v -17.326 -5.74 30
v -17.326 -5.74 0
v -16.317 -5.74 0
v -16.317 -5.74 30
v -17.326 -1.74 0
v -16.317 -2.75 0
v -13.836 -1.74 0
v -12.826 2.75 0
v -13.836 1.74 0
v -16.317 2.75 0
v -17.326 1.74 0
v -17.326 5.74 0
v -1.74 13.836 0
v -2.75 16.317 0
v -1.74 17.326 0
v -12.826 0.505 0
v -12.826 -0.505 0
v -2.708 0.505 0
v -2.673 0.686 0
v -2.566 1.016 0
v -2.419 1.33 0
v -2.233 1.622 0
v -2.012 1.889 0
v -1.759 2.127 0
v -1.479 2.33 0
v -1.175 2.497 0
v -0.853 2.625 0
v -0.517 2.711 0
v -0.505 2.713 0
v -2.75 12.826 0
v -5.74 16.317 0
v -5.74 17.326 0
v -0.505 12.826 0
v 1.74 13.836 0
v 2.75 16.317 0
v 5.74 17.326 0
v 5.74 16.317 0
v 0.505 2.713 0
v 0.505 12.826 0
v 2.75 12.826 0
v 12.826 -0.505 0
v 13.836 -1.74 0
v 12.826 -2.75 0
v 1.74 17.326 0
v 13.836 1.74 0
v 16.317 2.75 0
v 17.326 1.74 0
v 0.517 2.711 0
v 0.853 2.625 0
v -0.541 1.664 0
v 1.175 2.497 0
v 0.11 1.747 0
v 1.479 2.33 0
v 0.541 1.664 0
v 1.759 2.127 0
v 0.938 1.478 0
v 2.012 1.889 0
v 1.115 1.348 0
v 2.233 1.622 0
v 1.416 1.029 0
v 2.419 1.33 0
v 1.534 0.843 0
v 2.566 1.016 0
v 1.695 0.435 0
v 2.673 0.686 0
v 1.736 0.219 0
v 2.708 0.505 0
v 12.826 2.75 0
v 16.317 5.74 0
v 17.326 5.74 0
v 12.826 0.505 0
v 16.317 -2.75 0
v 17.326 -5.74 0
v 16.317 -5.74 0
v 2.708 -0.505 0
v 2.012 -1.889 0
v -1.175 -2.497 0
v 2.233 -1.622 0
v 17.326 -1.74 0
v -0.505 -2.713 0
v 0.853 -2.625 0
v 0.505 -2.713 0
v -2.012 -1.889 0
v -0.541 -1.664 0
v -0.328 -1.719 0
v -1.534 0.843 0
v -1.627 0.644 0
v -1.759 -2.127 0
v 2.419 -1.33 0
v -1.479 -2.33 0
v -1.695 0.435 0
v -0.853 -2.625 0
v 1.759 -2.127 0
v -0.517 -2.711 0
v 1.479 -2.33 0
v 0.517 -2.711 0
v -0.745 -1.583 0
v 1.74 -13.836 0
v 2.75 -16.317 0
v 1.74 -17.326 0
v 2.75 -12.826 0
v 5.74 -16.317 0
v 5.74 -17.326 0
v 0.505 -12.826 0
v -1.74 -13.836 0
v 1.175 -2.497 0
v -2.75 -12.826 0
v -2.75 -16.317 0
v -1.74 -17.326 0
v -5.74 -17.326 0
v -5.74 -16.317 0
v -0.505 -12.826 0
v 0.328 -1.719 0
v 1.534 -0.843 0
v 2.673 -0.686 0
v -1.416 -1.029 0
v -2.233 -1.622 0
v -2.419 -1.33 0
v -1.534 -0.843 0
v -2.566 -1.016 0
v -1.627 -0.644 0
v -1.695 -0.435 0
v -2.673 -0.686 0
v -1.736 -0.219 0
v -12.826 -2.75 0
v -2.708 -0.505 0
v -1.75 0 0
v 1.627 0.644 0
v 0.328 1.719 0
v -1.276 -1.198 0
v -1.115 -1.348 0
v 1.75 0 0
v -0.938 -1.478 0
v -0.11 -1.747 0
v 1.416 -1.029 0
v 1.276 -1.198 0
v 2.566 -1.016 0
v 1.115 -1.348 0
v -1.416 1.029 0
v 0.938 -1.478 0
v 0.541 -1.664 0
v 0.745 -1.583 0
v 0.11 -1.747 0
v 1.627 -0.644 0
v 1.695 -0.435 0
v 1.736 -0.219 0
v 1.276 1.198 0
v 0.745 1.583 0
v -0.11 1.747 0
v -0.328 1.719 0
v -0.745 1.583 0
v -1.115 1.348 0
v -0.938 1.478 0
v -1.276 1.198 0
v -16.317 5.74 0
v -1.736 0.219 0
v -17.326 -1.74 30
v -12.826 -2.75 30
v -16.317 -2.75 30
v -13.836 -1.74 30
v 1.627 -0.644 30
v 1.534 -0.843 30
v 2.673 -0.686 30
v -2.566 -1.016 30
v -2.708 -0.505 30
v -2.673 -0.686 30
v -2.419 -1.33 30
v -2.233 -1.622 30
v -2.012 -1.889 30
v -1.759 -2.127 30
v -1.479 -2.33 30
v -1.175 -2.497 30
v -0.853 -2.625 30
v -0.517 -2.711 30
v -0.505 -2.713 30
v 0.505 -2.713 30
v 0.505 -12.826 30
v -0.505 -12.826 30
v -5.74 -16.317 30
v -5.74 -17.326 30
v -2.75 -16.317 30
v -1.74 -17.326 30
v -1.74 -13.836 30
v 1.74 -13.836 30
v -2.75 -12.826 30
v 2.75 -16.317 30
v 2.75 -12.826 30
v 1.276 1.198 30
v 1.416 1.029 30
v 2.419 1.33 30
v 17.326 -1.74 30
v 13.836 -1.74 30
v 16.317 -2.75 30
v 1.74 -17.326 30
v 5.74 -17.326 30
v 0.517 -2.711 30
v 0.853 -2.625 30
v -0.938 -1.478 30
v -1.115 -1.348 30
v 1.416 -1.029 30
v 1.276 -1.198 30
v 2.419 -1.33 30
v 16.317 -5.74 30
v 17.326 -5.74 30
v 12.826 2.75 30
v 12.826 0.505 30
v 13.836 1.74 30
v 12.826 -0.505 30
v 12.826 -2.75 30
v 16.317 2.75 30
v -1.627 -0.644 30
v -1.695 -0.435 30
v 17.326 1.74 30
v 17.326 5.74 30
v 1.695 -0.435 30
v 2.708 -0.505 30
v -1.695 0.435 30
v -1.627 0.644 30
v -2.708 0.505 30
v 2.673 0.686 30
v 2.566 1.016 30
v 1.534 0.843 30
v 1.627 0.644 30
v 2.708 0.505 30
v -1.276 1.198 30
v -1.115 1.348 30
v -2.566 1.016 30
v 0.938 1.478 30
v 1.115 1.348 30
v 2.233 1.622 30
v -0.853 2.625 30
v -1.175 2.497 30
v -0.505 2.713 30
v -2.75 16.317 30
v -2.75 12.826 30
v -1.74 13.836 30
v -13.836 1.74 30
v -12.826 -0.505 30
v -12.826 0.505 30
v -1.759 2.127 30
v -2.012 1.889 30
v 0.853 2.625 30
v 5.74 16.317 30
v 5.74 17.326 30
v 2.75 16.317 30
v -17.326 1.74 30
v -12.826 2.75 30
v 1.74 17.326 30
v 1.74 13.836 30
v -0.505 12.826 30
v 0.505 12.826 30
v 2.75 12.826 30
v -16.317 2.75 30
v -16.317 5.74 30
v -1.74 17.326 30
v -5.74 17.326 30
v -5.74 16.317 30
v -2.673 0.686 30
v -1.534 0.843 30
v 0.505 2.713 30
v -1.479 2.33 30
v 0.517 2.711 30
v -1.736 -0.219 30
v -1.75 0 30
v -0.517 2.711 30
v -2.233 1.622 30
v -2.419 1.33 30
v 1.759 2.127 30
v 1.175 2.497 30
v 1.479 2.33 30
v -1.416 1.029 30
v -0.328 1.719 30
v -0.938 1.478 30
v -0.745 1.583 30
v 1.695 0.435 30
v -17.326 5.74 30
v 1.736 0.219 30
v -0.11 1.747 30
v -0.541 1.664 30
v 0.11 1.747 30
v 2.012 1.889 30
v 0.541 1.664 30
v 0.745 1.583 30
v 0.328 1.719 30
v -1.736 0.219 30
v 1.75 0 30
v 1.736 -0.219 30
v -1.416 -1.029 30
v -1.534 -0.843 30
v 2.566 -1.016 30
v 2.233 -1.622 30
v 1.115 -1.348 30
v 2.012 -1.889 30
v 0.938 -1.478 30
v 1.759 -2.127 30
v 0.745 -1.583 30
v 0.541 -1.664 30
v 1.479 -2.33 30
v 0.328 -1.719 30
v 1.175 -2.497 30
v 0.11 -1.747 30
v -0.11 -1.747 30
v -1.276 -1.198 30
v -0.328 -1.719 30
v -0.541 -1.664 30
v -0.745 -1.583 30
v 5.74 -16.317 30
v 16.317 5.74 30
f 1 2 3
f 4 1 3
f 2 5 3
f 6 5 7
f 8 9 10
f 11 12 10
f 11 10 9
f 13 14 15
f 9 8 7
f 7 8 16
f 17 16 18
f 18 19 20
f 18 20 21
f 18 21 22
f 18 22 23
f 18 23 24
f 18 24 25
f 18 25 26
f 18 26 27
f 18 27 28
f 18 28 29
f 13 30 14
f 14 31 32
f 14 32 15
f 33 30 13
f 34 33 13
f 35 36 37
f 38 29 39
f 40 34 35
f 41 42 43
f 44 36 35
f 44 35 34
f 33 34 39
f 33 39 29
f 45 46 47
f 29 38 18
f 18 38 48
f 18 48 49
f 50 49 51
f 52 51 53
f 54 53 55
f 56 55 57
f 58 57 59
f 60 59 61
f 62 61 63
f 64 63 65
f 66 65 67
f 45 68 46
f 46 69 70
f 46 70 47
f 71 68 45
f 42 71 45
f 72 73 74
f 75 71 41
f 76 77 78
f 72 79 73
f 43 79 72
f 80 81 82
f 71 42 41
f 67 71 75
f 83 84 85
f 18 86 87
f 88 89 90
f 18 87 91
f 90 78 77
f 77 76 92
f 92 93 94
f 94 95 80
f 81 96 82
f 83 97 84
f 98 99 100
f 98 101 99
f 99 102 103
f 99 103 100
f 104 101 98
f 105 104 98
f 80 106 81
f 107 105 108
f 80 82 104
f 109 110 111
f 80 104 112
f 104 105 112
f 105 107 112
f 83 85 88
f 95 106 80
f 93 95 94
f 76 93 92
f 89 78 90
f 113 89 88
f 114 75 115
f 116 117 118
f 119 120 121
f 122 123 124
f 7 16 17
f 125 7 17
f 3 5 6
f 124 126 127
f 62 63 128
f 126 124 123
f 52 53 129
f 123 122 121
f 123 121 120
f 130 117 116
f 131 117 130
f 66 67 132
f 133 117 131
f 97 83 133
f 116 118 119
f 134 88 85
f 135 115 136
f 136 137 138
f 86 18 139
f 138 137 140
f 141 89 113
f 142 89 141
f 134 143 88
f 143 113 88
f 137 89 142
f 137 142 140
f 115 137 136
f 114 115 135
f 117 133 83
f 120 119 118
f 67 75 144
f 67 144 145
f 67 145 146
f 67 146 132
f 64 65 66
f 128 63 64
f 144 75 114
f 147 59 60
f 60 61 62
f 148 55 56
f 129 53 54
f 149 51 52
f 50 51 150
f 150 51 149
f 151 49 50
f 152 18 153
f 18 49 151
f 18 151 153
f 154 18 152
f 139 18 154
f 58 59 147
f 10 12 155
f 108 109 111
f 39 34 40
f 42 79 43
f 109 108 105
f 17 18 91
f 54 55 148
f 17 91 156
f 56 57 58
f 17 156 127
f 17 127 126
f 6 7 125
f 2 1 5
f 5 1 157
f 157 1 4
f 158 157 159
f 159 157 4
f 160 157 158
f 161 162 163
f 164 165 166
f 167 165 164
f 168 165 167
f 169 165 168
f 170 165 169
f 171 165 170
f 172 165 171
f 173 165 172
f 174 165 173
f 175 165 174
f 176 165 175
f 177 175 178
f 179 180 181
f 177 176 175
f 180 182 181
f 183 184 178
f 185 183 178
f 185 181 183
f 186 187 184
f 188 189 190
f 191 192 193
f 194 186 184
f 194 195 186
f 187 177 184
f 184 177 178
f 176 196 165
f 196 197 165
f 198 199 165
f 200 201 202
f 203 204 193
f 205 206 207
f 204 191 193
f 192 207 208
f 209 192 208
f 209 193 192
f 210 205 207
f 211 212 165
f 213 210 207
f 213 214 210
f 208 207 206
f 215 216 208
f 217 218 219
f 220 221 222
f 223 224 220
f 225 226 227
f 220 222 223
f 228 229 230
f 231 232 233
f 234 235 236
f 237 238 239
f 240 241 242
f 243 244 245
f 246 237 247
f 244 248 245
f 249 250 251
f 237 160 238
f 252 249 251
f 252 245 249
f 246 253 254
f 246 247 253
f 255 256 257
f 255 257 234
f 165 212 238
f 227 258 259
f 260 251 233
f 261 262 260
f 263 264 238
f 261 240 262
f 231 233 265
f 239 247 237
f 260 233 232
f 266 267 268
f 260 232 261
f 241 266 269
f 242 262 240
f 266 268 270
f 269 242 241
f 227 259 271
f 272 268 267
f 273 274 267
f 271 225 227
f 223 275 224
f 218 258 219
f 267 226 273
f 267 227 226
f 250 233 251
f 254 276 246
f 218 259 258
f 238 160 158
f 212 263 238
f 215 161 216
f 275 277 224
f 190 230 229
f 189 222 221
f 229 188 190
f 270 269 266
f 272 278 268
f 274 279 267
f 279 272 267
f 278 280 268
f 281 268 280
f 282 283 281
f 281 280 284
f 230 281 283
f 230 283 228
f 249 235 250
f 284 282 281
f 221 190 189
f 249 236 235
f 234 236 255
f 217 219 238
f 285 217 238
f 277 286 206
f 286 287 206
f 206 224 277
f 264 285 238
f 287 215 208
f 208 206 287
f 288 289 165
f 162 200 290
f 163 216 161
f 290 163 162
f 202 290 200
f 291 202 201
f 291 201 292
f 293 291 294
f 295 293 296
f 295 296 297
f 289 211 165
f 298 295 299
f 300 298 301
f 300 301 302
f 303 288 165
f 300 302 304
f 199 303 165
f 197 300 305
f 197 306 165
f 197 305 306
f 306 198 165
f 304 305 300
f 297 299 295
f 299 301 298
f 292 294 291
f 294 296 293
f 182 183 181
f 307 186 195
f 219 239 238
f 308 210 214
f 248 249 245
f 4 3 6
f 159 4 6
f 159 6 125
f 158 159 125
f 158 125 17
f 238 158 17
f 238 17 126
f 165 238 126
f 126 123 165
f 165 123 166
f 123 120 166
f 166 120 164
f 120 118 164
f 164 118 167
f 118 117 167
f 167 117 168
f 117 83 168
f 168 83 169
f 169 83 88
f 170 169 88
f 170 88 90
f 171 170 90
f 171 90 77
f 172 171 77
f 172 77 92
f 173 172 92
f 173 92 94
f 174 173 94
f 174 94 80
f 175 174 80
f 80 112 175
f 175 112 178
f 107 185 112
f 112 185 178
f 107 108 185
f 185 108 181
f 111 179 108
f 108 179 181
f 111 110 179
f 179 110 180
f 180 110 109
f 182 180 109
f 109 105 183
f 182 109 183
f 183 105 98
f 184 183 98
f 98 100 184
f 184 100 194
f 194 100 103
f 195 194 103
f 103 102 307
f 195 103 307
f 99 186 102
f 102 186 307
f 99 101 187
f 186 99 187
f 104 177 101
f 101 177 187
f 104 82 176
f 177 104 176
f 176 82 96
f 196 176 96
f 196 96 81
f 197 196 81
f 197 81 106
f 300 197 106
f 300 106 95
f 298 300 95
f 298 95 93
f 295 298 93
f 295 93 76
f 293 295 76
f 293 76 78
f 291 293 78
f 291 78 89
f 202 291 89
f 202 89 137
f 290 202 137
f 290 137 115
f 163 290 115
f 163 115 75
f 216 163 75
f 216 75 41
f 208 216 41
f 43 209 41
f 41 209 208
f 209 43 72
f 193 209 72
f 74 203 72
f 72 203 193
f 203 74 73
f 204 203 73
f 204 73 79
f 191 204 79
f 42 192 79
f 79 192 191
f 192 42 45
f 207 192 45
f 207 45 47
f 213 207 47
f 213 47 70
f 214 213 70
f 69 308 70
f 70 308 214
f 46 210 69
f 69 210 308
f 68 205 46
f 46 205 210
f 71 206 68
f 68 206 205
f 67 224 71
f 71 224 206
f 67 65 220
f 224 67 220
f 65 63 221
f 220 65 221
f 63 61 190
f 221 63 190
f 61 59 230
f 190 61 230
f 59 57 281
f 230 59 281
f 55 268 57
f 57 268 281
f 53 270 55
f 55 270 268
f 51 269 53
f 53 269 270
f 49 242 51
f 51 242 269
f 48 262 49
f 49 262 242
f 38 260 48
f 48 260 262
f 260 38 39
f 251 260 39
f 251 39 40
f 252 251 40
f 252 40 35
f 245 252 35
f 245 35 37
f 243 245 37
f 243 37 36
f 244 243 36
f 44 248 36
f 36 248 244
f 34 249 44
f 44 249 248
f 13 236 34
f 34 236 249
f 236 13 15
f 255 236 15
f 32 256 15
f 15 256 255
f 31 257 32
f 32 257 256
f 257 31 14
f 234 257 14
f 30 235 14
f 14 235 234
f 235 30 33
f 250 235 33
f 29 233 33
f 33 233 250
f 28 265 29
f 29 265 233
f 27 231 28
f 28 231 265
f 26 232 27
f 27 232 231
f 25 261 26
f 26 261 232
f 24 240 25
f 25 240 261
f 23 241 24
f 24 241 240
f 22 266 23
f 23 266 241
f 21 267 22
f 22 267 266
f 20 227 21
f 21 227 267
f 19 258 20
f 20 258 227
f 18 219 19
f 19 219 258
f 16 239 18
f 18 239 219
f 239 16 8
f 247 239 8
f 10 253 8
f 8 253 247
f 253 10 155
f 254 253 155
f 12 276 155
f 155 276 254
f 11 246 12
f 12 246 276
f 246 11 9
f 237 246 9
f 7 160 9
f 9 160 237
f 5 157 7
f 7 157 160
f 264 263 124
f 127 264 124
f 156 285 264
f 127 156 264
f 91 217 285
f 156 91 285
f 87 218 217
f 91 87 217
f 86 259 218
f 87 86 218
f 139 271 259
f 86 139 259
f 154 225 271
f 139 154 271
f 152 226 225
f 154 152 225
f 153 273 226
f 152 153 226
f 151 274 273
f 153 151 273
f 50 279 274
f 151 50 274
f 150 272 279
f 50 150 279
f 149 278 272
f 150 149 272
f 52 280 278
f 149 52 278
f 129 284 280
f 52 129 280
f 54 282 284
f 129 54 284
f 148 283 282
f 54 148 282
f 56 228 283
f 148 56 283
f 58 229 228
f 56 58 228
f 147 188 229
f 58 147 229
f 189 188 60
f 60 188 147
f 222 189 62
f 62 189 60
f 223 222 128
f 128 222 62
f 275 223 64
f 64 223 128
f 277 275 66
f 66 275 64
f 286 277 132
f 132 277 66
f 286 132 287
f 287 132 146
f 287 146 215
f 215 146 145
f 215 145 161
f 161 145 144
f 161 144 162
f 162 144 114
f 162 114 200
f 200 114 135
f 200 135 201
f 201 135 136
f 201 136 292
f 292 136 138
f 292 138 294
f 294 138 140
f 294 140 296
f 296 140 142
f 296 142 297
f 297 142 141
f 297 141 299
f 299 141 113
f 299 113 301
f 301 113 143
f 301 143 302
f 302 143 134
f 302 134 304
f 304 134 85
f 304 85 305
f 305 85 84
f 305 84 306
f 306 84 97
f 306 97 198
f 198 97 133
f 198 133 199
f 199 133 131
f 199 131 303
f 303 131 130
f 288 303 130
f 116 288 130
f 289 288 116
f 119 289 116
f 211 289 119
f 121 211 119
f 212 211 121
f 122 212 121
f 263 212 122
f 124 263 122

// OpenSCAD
// all parameters are here

length_SC = 30; //solar cell length
width_SC = 18.5; // solar cell width (add 1mm to real measure with next maram)
m = 1.1; // margin added to SC width
width_tooth= 5.5;
height_tooth = 4.5;
lip_tooth = 4;
th = 1.01; // wall thickness
rint = 1.75; // tube radius



// other parameters computations...
rext = rint+th;
wall = (width_SC+m+width_tooth/1.414)/1.414-height_tooth+th/1.414; 




module U()
{
//walls
translate([0,-th/2,0])cube([wall,th,length_SC]);

// le fond du U
translate([wall,-width_tooth/2,0]) cube([th,width_tooth,length_SC]);
//les barres du U
translate([wall,-width_tooth/2,0])cube([height_tooth,th,length_SC]);
translate([wall,width_tooth/2-th,0])cube([height_tooth,th,length_SC]);

// les glissières du SC
translate([wall - th + height_tooth,width_tooth/2-th,0])cube([th, lip_tooth,length_SC]);
translate([wall - th + height_tooth,-width_tooth/2+th-lip_tooth,0])cube([th,lip_tooth,length_SC]);

}

module SC()  // just needed for display
{
color( "blue", 1)translate([(wall+ 3*th  + height_tooth)/2,(wall + 3*th + height_tooth)/2,length_SC/2+2])rotate([0,0,135])cube([width_SC+m,1,length_SC], center = true);
}

module body()
{

difference() {
union ()
{
U();
//SC();   // uncomment to show the solar pannel
rotate([0,0,90]) U();
rotate([0,0,180]) U();
rotate([0,0,-90]) U();
cylinder(r=rext, h=length_SC,  $fn=50);

}
cylinder(r=rint, h=length_SC,  $fn=50);

}
}

body();
